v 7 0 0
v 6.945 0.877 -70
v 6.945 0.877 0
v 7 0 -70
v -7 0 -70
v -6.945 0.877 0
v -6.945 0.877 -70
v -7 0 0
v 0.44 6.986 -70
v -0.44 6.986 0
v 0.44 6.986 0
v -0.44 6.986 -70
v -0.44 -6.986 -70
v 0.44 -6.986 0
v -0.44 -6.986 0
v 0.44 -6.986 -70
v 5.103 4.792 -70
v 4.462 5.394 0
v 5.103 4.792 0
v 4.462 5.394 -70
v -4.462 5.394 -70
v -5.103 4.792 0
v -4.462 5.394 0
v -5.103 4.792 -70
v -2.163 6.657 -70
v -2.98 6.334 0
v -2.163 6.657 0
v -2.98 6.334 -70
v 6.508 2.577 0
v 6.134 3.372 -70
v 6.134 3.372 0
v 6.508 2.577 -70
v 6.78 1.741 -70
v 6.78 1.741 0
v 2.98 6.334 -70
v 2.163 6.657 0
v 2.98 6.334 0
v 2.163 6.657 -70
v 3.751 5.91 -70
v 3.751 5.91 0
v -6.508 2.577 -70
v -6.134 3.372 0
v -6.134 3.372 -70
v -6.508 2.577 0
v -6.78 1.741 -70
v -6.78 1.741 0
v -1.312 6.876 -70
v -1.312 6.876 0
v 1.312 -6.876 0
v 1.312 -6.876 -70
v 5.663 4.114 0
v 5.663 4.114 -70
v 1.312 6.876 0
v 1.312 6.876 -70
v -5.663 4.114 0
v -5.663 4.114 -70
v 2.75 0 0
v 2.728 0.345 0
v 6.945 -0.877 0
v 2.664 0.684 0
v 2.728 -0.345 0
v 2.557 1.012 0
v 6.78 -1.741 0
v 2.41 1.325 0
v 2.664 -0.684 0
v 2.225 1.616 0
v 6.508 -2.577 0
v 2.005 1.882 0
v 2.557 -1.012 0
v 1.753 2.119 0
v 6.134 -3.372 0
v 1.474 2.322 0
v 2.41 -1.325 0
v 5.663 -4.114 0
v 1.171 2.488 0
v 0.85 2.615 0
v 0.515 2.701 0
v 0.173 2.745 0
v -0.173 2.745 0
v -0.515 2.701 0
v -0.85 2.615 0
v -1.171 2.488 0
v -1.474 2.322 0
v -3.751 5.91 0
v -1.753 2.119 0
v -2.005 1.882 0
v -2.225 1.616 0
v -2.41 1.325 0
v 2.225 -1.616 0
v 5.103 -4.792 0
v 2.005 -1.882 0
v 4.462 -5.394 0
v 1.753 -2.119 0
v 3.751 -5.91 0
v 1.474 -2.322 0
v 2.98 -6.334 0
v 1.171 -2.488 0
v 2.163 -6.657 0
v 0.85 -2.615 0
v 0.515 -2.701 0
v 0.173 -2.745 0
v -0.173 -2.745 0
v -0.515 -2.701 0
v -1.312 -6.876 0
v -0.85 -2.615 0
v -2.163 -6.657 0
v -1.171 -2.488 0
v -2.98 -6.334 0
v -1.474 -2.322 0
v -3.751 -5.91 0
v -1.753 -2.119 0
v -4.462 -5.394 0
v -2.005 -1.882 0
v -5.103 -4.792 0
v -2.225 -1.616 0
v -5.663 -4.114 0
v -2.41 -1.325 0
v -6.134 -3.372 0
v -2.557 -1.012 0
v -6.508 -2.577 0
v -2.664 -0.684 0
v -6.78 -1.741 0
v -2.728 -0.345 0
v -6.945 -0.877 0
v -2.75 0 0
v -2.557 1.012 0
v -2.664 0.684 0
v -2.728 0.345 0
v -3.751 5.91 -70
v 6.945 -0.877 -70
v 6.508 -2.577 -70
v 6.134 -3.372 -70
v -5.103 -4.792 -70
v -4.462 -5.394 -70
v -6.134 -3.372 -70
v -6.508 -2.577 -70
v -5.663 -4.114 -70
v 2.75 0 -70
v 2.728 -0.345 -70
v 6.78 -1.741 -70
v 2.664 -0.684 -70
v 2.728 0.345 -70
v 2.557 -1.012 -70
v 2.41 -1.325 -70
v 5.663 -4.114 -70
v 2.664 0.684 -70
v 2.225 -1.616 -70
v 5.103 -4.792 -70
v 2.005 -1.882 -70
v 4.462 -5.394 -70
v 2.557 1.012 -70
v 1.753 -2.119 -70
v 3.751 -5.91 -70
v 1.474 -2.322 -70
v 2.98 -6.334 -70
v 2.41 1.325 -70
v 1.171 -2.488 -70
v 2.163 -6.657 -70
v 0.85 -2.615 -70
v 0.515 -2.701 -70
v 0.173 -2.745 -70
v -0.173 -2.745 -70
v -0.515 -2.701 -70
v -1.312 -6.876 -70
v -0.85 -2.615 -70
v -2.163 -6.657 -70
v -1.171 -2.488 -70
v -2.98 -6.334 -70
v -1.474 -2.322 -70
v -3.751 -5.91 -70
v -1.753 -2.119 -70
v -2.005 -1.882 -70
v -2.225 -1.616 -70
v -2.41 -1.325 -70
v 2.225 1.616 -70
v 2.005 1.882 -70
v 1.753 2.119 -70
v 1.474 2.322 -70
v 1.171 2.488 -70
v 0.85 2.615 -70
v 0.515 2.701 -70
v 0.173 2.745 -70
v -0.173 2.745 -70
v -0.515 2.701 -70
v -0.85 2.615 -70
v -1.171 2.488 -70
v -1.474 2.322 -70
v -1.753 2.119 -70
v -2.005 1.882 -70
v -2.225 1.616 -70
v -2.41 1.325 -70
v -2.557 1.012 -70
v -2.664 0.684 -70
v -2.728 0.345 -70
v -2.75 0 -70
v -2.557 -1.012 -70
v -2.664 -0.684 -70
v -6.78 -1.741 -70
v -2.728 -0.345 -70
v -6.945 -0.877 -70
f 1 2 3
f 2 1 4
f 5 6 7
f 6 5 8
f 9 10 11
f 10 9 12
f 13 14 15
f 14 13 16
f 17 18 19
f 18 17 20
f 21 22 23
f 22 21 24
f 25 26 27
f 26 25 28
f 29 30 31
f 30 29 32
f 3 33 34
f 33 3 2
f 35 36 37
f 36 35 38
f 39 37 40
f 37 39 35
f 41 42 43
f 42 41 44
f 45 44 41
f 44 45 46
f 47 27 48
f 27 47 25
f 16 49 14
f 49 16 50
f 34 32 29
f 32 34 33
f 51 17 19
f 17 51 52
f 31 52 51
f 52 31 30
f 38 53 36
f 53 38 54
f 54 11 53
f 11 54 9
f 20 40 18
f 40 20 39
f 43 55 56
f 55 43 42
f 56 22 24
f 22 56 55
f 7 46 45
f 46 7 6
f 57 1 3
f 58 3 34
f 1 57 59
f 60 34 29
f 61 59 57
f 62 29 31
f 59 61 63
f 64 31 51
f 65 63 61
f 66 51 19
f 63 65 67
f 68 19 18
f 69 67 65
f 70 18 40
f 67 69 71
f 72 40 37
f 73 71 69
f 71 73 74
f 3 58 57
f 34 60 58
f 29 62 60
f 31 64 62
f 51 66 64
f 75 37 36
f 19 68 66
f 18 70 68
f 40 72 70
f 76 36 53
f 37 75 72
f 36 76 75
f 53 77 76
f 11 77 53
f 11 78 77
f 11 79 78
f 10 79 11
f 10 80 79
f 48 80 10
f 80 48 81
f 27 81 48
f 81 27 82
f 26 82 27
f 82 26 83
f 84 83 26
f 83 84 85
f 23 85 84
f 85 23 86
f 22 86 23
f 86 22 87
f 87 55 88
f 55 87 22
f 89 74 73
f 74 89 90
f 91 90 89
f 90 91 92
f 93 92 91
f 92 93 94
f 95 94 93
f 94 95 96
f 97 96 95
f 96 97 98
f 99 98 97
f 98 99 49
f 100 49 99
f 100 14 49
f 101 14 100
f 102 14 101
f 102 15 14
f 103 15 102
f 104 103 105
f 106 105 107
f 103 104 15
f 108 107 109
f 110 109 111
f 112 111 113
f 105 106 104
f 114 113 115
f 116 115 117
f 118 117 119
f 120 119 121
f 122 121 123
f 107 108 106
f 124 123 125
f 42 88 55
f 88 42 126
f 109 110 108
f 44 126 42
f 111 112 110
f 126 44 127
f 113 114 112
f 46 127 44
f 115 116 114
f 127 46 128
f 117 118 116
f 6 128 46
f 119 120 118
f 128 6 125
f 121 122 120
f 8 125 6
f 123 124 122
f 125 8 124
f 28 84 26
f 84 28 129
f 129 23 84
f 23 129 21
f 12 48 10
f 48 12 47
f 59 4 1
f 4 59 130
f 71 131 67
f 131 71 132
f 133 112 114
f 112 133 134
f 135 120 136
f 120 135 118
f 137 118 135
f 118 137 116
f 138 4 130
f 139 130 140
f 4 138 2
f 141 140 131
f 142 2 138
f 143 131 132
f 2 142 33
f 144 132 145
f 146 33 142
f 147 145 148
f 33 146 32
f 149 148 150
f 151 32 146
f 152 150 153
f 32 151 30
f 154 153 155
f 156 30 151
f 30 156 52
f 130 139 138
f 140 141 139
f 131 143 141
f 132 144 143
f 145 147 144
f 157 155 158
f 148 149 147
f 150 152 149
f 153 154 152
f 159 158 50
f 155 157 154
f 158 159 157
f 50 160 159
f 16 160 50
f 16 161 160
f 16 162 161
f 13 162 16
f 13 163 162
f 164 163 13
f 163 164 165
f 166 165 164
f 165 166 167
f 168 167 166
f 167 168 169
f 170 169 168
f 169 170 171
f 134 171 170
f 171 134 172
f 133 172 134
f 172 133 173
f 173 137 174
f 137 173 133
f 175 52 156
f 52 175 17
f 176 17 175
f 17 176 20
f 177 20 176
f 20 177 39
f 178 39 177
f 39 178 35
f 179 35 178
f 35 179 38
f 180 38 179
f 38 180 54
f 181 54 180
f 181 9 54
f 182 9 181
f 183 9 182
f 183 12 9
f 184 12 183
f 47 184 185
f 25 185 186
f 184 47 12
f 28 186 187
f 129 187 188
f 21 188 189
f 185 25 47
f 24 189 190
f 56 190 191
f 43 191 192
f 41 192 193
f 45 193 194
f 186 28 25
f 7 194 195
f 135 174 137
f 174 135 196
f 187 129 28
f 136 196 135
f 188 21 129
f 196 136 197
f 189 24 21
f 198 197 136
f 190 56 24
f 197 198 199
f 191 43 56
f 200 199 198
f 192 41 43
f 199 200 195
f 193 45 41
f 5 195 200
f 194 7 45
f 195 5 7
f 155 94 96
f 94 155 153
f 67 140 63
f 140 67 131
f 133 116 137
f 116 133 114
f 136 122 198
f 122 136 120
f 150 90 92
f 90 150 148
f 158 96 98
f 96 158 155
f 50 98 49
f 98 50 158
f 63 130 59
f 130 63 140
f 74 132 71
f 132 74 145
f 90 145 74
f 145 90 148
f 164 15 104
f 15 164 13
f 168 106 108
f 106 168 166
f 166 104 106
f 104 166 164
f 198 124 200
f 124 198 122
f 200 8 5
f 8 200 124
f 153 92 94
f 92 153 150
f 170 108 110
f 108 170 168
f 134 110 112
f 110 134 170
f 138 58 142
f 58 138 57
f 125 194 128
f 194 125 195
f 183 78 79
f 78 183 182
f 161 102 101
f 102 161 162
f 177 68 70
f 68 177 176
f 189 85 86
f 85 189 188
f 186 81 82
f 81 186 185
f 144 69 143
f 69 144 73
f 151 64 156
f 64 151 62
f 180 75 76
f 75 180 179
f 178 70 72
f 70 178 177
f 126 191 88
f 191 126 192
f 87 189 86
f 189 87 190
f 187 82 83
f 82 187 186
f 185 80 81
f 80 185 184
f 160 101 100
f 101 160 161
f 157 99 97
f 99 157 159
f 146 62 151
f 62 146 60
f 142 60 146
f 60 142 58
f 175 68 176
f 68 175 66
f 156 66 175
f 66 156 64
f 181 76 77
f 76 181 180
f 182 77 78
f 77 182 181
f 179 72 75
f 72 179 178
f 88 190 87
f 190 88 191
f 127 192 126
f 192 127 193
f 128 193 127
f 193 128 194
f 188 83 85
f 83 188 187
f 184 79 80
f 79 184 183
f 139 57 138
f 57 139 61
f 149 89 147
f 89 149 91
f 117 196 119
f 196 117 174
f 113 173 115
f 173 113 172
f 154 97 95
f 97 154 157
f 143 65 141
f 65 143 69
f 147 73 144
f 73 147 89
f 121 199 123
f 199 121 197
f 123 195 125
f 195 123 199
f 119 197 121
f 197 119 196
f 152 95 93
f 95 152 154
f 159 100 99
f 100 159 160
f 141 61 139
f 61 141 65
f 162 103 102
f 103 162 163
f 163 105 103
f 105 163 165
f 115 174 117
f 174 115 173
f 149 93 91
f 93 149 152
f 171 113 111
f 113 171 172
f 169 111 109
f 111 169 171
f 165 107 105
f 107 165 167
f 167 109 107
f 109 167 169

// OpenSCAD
$fn = 50;


difference() {
	union() {
		translate(v = [0, 0, -70.0000000000]) {
			cylinder(h = 70, r = 7.0000000000);
		}
		cylinder(h = 0, r = 10.0000000000);
	}
	union() {
		#translate(v = [0, 0, -70]) {
			cylinder(h = 70, r = 2.7500000000);
		}
	}
}
